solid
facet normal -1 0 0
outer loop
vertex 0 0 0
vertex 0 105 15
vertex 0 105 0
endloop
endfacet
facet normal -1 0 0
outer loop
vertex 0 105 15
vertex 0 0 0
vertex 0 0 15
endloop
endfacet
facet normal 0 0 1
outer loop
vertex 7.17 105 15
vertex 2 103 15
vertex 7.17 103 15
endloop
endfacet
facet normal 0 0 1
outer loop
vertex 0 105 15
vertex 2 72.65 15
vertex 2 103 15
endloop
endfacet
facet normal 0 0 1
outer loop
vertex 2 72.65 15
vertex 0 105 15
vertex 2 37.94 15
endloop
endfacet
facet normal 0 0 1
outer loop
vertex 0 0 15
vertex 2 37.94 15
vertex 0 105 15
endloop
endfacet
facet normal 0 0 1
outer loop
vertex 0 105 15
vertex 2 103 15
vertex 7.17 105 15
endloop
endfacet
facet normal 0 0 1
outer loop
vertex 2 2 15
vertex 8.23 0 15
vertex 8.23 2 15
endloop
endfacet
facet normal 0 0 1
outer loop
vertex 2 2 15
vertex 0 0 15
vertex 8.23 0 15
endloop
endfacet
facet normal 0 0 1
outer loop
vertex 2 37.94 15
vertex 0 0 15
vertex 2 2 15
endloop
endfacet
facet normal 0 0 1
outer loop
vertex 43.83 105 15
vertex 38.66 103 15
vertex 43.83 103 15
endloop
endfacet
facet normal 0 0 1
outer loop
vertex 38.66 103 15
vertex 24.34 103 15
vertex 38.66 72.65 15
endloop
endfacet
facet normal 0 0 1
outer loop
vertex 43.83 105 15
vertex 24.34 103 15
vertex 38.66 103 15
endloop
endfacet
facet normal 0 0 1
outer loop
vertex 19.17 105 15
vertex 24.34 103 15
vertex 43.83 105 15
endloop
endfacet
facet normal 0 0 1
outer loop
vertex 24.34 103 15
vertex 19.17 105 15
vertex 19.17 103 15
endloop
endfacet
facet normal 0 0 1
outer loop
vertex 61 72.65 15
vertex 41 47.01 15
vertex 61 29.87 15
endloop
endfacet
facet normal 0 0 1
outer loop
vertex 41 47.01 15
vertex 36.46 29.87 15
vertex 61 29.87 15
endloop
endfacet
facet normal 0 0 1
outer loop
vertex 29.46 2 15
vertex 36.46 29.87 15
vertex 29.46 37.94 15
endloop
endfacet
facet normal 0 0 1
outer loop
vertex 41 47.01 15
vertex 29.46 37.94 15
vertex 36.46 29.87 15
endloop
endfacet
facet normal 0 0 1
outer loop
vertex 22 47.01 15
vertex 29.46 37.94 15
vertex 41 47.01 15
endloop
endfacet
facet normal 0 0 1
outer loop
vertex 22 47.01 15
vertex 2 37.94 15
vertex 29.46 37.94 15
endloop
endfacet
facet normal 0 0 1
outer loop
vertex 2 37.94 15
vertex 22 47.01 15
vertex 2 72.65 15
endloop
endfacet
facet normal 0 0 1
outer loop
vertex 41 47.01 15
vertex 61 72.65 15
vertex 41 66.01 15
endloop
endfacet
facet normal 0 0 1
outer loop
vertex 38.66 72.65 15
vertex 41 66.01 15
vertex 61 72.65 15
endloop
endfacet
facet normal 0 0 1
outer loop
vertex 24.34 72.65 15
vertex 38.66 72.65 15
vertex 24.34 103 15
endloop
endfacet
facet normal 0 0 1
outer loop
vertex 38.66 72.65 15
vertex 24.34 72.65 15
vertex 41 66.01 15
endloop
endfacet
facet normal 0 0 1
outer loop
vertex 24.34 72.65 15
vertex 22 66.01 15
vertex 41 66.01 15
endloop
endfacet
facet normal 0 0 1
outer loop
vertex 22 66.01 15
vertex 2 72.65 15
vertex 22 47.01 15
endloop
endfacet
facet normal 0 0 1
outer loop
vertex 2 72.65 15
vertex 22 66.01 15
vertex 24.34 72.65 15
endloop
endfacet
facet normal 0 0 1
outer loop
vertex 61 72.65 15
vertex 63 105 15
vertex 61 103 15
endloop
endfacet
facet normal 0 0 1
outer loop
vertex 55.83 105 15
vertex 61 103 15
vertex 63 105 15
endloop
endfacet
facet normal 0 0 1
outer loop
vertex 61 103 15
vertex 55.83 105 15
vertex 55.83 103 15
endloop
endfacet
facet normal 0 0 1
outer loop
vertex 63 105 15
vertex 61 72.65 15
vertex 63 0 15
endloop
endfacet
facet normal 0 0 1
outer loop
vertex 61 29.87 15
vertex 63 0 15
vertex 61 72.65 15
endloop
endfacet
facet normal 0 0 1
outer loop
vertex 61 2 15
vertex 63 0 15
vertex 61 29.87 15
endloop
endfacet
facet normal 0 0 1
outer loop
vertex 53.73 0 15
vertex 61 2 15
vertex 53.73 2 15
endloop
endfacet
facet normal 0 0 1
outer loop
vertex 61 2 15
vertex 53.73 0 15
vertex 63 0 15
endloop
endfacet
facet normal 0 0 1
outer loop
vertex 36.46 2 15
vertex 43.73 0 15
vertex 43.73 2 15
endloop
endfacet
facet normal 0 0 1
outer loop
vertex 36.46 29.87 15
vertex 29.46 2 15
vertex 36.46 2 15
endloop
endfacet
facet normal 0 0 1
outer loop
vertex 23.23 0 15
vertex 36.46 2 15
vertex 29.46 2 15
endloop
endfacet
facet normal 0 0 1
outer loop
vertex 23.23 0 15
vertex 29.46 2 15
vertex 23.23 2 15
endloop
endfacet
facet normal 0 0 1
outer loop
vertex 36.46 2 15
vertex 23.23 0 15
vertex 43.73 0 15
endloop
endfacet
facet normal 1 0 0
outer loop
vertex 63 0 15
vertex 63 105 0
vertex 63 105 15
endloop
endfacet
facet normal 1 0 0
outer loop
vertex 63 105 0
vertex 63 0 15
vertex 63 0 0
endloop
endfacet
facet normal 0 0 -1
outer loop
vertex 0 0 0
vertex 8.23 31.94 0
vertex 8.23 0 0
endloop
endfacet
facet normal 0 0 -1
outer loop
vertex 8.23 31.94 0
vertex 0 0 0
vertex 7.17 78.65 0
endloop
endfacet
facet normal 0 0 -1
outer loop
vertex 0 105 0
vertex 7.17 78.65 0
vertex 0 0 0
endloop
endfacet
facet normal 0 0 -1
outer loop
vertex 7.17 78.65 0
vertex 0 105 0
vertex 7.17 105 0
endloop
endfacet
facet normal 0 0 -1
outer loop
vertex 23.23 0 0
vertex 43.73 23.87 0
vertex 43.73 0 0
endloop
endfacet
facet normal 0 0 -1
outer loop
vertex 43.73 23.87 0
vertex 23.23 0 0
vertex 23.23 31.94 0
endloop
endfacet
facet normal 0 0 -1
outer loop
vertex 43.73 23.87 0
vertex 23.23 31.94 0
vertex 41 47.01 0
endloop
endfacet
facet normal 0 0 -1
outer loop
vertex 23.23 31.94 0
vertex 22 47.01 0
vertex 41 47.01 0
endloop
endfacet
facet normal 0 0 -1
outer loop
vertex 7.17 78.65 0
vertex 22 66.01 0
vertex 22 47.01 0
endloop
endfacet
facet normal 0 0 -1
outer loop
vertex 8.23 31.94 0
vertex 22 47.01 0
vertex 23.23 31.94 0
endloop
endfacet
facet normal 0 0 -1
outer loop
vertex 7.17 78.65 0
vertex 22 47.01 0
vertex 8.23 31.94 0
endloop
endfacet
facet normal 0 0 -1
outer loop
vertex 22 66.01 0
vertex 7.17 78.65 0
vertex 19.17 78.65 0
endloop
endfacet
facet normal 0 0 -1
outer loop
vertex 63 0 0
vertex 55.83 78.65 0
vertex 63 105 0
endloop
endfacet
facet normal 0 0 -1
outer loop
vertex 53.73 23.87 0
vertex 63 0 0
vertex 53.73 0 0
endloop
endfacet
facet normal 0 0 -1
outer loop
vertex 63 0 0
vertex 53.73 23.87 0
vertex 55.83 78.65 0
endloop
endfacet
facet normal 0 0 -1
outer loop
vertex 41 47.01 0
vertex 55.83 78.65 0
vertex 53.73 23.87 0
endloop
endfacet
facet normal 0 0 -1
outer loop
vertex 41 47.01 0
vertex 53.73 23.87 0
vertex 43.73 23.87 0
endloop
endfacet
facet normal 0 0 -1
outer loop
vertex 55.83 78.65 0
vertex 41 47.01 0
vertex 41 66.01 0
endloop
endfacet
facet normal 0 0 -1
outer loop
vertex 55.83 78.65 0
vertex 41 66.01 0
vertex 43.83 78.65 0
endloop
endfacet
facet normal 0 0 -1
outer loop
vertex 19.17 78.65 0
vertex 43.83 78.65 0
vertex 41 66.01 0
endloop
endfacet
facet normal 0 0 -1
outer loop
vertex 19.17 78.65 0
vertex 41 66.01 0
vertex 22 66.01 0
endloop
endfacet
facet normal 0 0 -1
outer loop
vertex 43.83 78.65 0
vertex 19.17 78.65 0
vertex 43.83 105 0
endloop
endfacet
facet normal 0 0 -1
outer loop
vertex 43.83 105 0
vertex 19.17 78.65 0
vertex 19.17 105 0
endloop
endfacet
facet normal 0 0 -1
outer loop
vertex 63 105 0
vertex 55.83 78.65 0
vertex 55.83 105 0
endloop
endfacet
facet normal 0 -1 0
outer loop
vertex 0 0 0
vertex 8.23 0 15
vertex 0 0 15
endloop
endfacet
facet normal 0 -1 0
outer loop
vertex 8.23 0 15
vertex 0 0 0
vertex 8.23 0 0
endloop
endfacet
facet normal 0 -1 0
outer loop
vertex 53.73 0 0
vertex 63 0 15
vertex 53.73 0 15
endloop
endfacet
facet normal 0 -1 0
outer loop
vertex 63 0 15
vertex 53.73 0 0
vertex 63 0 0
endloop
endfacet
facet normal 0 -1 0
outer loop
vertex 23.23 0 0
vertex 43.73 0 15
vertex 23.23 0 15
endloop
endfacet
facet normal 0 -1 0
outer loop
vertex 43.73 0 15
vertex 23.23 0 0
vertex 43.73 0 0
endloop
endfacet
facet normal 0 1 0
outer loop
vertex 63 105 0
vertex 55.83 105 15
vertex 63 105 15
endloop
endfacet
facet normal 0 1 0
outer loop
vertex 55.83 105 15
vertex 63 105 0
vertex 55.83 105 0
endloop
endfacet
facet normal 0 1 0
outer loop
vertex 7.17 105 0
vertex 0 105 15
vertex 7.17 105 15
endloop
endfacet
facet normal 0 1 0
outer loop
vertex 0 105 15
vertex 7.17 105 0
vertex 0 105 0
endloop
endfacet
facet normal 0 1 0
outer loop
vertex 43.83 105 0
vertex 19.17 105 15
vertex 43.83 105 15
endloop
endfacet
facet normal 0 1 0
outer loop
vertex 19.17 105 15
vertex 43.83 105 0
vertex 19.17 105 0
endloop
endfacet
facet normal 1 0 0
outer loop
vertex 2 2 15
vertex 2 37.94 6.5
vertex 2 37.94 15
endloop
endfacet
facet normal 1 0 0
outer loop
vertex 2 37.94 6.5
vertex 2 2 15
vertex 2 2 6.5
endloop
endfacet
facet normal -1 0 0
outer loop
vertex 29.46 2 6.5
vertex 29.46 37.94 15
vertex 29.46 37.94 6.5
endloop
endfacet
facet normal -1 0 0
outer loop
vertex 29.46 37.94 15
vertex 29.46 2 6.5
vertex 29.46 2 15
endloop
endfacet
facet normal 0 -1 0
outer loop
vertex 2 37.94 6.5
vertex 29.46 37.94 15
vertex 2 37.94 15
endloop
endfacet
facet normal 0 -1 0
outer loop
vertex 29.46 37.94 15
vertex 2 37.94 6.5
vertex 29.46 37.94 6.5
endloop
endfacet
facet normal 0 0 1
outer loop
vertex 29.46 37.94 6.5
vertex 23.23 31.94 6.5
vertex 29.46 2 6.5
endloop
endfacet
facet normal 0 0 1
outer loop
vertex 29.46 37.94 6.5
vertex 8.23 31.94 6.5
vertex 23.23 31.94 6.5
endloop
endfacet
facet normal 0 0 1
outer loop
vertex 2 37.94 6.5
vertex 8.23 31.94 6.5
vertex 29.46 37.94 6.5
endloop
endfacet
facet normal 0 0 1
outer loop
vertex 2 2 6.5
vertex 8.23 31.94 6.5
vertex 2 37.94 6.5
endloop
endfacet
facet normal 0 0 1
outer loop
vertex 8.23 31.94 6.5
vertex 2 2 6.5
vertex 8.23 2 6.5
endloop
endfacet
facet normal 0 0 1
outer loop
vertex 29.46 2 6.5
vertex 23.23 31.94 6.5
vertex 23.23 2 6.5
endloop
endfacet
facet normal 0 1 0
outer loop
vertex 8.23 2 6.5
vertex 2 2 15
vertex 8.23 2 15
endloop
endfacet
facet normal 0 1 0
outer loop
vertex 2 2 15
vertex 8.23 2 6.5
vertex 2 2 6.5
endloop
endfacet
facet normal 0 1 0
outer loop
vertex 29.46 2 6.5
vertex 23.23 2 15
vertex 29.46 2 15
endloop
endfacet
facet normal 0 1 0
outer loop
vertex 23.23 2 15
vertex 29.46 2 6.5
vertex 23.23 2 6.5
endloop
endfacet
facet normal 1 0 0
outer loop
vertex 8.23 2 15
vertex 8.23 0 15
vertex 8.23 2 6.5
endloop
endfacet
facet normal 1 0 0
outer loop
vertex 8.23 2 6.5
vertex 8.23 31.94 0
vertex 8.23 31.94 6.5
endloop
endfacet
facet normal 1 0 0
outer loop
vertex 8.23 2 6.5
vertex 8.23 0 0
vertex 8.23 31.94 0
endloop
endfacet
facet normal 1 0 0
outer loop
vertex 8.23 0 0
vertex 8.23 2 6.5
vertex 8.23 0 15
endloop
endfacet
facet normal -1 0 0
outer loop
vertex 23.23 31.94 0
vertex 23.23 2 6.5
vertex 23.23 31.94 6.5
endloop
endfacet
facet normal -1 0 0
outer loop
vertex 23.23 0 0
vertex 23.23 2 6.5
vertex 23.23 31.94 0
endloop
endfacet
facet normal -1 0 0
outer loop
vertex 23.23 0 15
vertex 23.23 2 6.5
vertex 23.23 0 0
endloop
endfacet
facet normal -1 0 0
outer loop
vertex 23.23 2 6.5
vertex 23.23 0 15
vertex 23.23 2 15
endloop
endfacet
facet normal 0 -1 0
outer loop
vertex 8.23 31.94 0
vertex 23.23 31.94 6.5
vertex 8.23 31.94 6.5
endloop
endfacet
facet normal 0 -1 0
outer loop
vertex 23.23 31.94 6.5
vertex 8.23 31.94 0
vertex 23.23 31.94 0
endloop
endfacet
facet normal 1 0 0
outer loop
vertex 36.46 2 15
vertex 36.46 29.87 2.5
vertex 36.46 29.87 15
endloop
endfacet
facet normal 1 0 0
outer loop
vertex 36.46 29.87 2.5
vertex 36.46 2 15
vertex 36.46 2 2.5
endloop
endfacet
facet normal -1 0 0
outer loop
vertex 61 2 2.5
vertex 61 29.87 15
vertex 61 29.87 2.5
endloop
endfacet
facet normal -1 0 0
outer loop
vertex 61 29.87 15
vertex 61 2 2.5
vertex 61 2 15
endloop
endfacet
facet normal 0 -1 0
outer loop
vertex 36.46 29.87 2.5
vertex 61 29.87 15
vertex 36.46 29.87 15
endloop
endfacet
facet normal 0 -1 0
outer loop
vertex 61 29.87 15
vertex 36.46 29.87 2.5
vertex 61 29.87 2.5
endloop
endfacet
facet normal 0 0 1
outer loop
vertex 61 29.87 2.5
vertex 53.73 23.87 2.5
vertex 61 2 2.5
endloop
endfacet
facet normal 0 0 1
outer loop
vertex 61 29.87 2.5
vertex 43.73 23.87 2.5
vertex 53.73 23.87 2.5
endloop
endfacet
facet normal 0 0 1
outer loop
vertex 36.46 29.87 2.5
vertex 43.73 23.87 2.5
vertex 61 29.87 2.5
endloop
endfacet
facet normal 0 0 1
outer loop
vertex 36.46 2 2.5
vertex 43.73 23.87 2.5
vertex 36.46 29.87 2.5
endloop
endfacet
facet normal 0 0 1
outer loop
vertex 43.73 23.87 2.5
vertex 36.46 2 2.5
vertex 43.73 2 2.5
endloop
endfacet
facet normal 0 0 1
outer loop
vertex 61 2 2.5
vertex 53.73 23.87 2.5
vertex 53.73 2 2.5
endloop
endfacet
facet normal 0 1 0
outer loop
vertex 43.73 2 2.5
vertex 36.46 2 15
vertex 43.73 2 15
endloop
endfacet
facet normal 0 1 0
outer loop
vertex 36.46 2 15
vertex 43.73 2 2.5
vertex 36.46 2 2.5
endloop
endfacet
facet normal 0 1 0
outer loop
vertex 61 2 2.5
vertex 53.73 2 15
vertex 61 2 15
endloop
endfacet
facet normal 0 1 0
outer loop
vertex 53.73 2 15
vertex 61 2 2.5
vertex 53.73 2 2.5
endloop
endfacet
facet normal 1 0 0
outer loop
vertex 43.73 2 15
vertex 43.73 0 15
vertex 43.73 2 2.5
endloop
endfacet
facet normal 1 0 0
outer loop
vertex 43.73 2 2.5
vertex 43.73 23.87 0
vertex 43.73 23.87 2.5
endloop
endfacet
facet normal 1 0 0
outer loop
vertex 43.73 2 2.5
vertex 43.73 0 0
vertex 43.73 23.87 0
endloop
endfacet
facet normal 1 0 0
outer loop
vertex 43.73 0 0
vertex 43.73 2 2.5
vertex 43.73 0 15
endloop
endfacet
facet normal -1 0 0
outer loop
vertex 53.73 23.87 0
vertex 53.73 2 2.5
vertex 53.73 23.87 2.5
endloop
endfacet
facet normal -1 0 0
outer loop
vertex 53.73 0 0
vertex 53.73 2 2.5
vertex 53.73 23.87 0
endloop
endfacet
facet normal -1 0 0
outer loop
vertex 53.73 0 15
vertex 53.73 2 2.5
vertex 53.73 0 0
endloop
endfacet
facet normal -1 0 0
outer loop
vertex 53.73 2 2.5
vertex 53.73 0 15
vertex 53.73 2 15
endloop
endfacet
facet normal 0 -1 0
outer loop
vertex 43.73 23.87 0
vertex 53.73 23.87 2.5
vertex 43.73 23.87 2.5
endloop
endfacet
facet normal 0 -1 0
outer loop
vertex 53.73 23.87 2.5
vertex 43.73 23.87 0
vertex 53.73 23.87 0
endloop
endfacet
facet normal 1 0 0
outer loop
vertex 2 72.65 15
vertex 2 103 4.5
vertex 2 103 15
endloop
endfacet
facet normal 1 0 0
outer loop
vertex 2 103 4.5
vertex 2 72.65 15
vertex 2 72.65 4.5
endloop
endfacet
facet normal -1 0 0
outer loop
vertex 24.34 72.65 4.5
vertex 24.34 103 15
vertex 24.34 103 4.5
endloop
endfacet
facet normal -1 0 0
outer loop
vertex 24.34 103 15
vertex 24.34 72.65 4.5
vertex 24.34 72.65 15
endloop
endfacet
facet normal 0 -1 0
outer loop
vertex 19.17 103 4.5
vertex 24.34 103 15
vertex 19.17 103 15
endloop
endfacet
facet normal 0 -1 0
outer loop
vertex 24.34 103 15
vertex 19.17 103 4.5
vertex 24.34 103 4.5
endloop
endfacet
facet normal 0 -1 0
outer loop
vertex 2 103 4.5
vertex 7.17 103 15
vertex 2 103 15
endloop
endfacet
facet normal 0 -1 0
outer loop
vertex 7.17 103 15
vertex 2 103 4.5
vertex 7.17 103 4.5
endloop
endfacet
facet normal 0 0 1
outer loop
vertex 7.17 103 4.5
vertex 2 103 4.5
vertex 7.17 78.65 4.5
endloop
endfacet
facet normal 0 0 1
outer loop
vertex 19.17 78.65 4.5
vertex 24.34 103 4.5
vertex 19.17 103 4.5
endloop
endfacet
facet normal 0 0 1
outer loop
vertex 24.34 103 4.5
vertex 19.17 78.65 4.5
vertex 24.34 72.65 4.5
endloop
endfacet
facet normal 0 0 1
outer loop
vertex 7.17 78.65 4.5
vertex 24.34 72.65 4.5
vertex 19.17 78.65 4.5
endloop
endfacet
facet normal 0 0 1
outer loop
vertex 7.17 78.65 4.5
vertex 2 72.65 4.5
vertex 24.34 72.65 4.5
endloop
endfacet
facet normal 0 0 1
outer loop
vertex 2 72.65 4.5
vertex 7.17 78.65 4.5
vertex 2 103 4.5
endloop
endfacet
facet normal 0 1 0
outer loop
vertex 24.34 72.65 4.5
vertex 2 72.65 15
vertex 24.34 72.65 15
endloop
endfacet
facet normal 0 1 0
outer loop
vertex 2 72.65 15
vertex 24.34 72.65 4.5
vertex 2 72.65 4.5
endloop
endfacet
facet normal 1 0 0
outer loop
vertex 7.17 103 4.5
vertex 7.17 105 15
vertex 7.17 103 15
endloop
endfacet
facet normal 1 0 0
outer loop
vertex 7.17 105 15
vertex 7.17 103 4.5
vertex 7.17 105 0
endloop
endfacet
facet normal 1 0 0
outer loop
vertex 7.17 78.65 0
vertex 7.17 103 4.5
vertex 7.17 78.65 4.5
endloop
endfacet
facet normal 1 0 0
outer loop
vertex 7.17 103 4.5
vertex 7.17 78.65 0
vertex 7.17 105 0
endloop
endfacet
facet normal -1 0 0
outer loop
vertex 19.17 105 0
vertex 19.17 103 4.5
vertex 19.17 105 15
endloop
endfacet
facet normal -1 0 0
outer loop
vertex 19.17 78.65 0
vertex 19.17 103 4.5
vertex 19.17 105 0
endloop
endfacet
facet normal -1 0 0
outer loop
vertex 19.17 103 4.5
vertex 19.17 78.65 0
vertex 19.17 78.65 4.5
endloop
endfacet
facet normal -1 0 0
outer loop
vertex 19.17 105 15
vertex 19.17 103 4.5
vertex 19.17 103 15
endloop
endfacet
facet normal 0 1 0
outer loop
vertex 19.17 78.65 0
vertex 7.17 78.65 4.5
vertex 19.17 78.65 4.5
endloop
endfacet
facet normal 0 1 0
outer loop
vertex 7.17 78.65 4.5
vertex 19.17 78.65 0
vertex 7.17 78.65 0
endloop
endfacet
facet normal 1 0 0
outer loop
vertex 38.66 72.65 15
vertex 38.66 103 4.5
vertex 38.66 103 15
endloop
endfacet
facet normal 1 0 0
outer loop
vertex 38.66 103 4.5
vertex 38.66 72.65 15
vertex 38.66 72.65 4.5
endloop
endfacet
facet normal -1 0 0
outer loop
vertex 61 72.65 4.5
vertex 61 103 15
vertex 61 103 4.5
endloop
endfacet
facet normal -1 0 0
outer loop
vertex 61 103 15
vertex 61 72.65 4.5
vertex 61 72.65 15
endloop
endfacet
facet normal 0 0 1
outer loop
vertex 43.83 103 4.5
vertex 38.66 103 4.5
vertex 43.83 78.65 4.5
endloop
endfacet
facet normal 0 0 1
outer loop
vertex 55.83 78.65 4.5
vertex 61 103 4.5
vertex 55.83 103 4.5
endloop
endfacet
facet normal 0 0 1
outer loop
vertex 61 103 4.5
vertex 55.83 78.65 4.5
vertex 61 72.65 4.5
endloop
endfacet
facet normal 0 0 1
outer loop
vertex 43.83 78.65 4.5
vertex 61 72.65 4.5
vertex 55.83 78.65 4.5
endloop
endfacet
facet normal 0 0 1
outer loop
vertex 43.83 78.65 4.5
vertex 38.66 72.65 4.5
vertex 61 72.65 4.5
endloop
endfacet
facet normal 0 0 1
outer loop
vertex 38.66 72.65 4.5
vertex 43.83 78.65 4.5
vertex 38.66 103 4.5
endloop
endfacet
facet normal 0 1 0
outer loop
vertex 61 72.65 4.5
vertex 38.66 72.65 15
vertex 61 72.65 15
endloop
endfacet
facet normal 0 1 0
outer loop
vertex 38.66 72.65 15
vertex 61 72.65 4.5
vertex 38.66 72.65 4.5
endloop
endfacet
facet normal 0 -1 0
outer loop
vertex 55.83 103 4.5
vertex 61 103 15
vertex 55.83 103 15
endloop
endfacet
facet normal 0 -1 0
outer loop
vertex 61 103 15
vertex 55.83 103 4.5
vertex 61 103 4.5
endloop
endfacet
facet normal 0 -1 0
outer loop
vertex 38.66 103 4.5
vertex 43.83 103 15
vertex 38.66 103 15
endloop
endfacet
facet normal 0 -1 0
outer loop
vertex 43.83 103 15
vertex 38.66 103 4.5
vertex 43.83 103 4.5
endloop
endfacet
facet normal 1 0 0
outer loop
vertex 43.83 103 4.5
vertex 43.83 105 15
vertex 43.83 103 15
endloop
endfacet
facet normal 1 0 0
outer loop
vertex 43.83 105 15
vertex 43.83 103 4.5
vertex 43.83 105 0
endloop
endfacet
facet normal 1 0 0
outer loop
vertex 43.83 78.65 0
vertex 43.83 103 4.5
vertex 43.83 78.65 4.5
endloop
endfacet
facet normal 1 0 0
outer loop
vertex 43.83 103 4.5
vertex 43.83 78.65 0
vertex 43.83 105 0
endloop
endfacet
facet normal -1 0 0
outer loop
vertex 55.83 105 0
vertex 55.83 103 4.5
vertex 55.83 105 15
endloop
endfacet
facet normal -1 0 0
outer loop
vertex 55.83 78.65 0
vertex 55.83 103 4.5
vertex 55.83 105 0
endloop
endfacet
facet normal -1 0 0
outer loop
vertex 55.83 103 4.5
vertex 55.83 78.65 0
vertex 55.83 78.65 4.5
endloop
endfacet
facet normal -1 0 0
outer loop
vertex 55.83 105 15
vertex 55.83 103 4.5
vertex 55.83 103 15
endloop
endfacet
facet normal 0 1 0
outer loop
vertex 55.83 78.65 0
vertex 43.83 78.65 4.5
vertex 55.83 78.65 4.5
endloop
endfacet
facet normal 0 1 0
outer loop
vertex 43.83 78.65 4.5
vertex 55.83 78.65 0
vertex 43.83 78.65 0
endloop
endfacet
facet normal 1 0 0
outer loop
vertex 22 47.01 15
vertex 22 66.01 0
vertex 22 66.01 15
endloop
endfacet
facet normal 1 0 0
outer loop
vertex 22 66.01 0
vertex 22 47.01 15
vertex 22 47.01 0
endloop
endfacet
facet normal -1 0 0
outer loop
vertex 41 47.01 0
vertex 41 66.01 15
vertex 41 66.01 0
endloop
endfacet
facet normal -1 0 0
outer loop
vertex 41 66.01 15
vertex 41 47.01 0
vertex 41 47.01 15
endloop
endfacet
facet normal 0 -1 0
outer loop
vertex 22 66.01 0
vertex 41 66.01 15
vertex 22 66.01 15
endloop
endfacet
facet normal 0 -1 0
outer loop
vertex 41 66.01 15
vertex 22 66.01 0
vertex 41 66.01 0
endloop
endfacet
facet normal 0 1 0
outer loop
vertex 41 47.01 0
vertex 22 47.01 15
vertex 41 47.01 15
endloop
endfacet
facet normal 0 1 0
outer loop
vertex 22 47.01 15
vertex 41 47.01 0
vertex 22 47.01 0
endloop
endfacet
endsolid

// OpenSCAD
length = 63;
width = 105;
height = 15;

//Based on magnet size:
magnetBaseInnerDiameter = 19;
magnetHeight = 4.0;

//          cave bear x 4, 34.94 x 26.46, base fullish
//			hound x 6, 26.87 x 23,54, base 20.75
//			giant viper (2 stacks of 5) 29.35 x 21.34, base fullish

//single token 2.0
magnetOffset = 43.01;

largeToken1Width = 34.94 + 1;
largeToken1Length = 26.46 + 1;
largeToken1Height = 8 + .5;
largeToken1SquareLipWidthRemainder = largeToken1Length - 15;
largeToken1SquareLipLengthRemainder = 4;

largeToken2Width = 26.87 + 1;
largeToken2Length = 23.54 + 1;
largeToken2Height = 12 + .5;
largeToken2SquareLipWidthRemainder = largeToken2Length - 10;
largeToken2SquareLipLengthRemainder = 4;

smallToken1Width = 29.35 + 1;
smallToken1Length = 21.34 + 1;
smallToken1Height = 10 + .5;
smallToken1SquareLipWidthRemainder = smallToken1Length - 12;
smallToken1SquareLipLengthRemainder = 4;

smallToken2Width = 29.35 + 1;
smallToken2Length = 21.34 + 1;
smallToken2Height = 10 + .5;
smallToken2SquareLipWidthRemainder = smallToken2Length - 12;
smallToken2SquareLipLengthRemainder = 4;

spaceBetweenCircles = 2;
wallThickness = spaceBetweenCircles;



difference(){
    cube([length, width, height]);


//----------------------------------
translate(
        [
            wallThickness,
            wallThickness,
            height - largeToken1Height
        ])
        cube([largeToken1Length,largeToken1Width, largeToken1Height]);
    translate([
        wallThickness + largeToken1SquareLipWidthRemainder/2,
        0,
        0])
        cube([
            largeToken1Length - largeToken1SquareLipWidthRemainder,
            largeToken1Width - largeToken1SquareLipLengthRemainder,
            height]);
    
translate(
        [
            length - (wallThickness + largeToken2Length),
            wallThickness,
            height - largeToken2Height
        ])
        cube([largeToken2Length,largeToken2Width, largeToken2Height]);
    translate([
        length - (wallThickness + (largeToken2Length - largeToken2SquareLipWidthRemainder) + largeToken2SquareLipWidthRemainder/2),
        0,
        0])
        cube([
            largeToken2Length - largeToken2SquareLipWidthRemainder,
            largeToken2Width - largeToken2SquareLipLengthRemainder,
            height]);

            
//---------------------------------------------------------------------
    
    translate(
        [
            wallThickness,
            width - (wallThickness + smallToken1Width),
            height - smallToken1Height
        ])
        cube([smallToken1Length,smallToken1Width, smallToken1Height]);
    translate([
        wallThickness + smallToken1SquareLipWidthRemainder/2,
        width - (smallToken1Width - smallToken1SquareLipLengthRemainder),
        0])
        cube([
            smallToken1Length - smallToken1SquareLipWidthRemainder,
            smallToken1Width - smallToken1SquareLipLengthRemainder,
            height]);

    translate(
        [
            length - (wallThickness + smallToken2Length),
            width - (wallThickness + smallToken2Width),
            height - smallToken2Height
        ])
        cube([smallToken2Length,smallToken2Width, smallToken2Height]);
    translate([
        length - (wallThickness + smallToken2Length) + smallToken2SquareLipWidthRemainder/2,
        width - (smallToken2Width - smallToken2SquareLipLengthRemainder),
        0])
        cube([
            smallToken2Length - smallToken2SquareLipWidthRemainder,
            smallToken2Width - smallToken2SquareLipLengthRemainder,
            height]);       

//----------------------------------------
   
    translate([length/2 - magnetBaseInnerDiameter/2, magnetOffset + wallThickness * 2, 0])
        cube([magnetBaseInnerDiameter, magnetBaseInnerDiameter, height]);
        

}
